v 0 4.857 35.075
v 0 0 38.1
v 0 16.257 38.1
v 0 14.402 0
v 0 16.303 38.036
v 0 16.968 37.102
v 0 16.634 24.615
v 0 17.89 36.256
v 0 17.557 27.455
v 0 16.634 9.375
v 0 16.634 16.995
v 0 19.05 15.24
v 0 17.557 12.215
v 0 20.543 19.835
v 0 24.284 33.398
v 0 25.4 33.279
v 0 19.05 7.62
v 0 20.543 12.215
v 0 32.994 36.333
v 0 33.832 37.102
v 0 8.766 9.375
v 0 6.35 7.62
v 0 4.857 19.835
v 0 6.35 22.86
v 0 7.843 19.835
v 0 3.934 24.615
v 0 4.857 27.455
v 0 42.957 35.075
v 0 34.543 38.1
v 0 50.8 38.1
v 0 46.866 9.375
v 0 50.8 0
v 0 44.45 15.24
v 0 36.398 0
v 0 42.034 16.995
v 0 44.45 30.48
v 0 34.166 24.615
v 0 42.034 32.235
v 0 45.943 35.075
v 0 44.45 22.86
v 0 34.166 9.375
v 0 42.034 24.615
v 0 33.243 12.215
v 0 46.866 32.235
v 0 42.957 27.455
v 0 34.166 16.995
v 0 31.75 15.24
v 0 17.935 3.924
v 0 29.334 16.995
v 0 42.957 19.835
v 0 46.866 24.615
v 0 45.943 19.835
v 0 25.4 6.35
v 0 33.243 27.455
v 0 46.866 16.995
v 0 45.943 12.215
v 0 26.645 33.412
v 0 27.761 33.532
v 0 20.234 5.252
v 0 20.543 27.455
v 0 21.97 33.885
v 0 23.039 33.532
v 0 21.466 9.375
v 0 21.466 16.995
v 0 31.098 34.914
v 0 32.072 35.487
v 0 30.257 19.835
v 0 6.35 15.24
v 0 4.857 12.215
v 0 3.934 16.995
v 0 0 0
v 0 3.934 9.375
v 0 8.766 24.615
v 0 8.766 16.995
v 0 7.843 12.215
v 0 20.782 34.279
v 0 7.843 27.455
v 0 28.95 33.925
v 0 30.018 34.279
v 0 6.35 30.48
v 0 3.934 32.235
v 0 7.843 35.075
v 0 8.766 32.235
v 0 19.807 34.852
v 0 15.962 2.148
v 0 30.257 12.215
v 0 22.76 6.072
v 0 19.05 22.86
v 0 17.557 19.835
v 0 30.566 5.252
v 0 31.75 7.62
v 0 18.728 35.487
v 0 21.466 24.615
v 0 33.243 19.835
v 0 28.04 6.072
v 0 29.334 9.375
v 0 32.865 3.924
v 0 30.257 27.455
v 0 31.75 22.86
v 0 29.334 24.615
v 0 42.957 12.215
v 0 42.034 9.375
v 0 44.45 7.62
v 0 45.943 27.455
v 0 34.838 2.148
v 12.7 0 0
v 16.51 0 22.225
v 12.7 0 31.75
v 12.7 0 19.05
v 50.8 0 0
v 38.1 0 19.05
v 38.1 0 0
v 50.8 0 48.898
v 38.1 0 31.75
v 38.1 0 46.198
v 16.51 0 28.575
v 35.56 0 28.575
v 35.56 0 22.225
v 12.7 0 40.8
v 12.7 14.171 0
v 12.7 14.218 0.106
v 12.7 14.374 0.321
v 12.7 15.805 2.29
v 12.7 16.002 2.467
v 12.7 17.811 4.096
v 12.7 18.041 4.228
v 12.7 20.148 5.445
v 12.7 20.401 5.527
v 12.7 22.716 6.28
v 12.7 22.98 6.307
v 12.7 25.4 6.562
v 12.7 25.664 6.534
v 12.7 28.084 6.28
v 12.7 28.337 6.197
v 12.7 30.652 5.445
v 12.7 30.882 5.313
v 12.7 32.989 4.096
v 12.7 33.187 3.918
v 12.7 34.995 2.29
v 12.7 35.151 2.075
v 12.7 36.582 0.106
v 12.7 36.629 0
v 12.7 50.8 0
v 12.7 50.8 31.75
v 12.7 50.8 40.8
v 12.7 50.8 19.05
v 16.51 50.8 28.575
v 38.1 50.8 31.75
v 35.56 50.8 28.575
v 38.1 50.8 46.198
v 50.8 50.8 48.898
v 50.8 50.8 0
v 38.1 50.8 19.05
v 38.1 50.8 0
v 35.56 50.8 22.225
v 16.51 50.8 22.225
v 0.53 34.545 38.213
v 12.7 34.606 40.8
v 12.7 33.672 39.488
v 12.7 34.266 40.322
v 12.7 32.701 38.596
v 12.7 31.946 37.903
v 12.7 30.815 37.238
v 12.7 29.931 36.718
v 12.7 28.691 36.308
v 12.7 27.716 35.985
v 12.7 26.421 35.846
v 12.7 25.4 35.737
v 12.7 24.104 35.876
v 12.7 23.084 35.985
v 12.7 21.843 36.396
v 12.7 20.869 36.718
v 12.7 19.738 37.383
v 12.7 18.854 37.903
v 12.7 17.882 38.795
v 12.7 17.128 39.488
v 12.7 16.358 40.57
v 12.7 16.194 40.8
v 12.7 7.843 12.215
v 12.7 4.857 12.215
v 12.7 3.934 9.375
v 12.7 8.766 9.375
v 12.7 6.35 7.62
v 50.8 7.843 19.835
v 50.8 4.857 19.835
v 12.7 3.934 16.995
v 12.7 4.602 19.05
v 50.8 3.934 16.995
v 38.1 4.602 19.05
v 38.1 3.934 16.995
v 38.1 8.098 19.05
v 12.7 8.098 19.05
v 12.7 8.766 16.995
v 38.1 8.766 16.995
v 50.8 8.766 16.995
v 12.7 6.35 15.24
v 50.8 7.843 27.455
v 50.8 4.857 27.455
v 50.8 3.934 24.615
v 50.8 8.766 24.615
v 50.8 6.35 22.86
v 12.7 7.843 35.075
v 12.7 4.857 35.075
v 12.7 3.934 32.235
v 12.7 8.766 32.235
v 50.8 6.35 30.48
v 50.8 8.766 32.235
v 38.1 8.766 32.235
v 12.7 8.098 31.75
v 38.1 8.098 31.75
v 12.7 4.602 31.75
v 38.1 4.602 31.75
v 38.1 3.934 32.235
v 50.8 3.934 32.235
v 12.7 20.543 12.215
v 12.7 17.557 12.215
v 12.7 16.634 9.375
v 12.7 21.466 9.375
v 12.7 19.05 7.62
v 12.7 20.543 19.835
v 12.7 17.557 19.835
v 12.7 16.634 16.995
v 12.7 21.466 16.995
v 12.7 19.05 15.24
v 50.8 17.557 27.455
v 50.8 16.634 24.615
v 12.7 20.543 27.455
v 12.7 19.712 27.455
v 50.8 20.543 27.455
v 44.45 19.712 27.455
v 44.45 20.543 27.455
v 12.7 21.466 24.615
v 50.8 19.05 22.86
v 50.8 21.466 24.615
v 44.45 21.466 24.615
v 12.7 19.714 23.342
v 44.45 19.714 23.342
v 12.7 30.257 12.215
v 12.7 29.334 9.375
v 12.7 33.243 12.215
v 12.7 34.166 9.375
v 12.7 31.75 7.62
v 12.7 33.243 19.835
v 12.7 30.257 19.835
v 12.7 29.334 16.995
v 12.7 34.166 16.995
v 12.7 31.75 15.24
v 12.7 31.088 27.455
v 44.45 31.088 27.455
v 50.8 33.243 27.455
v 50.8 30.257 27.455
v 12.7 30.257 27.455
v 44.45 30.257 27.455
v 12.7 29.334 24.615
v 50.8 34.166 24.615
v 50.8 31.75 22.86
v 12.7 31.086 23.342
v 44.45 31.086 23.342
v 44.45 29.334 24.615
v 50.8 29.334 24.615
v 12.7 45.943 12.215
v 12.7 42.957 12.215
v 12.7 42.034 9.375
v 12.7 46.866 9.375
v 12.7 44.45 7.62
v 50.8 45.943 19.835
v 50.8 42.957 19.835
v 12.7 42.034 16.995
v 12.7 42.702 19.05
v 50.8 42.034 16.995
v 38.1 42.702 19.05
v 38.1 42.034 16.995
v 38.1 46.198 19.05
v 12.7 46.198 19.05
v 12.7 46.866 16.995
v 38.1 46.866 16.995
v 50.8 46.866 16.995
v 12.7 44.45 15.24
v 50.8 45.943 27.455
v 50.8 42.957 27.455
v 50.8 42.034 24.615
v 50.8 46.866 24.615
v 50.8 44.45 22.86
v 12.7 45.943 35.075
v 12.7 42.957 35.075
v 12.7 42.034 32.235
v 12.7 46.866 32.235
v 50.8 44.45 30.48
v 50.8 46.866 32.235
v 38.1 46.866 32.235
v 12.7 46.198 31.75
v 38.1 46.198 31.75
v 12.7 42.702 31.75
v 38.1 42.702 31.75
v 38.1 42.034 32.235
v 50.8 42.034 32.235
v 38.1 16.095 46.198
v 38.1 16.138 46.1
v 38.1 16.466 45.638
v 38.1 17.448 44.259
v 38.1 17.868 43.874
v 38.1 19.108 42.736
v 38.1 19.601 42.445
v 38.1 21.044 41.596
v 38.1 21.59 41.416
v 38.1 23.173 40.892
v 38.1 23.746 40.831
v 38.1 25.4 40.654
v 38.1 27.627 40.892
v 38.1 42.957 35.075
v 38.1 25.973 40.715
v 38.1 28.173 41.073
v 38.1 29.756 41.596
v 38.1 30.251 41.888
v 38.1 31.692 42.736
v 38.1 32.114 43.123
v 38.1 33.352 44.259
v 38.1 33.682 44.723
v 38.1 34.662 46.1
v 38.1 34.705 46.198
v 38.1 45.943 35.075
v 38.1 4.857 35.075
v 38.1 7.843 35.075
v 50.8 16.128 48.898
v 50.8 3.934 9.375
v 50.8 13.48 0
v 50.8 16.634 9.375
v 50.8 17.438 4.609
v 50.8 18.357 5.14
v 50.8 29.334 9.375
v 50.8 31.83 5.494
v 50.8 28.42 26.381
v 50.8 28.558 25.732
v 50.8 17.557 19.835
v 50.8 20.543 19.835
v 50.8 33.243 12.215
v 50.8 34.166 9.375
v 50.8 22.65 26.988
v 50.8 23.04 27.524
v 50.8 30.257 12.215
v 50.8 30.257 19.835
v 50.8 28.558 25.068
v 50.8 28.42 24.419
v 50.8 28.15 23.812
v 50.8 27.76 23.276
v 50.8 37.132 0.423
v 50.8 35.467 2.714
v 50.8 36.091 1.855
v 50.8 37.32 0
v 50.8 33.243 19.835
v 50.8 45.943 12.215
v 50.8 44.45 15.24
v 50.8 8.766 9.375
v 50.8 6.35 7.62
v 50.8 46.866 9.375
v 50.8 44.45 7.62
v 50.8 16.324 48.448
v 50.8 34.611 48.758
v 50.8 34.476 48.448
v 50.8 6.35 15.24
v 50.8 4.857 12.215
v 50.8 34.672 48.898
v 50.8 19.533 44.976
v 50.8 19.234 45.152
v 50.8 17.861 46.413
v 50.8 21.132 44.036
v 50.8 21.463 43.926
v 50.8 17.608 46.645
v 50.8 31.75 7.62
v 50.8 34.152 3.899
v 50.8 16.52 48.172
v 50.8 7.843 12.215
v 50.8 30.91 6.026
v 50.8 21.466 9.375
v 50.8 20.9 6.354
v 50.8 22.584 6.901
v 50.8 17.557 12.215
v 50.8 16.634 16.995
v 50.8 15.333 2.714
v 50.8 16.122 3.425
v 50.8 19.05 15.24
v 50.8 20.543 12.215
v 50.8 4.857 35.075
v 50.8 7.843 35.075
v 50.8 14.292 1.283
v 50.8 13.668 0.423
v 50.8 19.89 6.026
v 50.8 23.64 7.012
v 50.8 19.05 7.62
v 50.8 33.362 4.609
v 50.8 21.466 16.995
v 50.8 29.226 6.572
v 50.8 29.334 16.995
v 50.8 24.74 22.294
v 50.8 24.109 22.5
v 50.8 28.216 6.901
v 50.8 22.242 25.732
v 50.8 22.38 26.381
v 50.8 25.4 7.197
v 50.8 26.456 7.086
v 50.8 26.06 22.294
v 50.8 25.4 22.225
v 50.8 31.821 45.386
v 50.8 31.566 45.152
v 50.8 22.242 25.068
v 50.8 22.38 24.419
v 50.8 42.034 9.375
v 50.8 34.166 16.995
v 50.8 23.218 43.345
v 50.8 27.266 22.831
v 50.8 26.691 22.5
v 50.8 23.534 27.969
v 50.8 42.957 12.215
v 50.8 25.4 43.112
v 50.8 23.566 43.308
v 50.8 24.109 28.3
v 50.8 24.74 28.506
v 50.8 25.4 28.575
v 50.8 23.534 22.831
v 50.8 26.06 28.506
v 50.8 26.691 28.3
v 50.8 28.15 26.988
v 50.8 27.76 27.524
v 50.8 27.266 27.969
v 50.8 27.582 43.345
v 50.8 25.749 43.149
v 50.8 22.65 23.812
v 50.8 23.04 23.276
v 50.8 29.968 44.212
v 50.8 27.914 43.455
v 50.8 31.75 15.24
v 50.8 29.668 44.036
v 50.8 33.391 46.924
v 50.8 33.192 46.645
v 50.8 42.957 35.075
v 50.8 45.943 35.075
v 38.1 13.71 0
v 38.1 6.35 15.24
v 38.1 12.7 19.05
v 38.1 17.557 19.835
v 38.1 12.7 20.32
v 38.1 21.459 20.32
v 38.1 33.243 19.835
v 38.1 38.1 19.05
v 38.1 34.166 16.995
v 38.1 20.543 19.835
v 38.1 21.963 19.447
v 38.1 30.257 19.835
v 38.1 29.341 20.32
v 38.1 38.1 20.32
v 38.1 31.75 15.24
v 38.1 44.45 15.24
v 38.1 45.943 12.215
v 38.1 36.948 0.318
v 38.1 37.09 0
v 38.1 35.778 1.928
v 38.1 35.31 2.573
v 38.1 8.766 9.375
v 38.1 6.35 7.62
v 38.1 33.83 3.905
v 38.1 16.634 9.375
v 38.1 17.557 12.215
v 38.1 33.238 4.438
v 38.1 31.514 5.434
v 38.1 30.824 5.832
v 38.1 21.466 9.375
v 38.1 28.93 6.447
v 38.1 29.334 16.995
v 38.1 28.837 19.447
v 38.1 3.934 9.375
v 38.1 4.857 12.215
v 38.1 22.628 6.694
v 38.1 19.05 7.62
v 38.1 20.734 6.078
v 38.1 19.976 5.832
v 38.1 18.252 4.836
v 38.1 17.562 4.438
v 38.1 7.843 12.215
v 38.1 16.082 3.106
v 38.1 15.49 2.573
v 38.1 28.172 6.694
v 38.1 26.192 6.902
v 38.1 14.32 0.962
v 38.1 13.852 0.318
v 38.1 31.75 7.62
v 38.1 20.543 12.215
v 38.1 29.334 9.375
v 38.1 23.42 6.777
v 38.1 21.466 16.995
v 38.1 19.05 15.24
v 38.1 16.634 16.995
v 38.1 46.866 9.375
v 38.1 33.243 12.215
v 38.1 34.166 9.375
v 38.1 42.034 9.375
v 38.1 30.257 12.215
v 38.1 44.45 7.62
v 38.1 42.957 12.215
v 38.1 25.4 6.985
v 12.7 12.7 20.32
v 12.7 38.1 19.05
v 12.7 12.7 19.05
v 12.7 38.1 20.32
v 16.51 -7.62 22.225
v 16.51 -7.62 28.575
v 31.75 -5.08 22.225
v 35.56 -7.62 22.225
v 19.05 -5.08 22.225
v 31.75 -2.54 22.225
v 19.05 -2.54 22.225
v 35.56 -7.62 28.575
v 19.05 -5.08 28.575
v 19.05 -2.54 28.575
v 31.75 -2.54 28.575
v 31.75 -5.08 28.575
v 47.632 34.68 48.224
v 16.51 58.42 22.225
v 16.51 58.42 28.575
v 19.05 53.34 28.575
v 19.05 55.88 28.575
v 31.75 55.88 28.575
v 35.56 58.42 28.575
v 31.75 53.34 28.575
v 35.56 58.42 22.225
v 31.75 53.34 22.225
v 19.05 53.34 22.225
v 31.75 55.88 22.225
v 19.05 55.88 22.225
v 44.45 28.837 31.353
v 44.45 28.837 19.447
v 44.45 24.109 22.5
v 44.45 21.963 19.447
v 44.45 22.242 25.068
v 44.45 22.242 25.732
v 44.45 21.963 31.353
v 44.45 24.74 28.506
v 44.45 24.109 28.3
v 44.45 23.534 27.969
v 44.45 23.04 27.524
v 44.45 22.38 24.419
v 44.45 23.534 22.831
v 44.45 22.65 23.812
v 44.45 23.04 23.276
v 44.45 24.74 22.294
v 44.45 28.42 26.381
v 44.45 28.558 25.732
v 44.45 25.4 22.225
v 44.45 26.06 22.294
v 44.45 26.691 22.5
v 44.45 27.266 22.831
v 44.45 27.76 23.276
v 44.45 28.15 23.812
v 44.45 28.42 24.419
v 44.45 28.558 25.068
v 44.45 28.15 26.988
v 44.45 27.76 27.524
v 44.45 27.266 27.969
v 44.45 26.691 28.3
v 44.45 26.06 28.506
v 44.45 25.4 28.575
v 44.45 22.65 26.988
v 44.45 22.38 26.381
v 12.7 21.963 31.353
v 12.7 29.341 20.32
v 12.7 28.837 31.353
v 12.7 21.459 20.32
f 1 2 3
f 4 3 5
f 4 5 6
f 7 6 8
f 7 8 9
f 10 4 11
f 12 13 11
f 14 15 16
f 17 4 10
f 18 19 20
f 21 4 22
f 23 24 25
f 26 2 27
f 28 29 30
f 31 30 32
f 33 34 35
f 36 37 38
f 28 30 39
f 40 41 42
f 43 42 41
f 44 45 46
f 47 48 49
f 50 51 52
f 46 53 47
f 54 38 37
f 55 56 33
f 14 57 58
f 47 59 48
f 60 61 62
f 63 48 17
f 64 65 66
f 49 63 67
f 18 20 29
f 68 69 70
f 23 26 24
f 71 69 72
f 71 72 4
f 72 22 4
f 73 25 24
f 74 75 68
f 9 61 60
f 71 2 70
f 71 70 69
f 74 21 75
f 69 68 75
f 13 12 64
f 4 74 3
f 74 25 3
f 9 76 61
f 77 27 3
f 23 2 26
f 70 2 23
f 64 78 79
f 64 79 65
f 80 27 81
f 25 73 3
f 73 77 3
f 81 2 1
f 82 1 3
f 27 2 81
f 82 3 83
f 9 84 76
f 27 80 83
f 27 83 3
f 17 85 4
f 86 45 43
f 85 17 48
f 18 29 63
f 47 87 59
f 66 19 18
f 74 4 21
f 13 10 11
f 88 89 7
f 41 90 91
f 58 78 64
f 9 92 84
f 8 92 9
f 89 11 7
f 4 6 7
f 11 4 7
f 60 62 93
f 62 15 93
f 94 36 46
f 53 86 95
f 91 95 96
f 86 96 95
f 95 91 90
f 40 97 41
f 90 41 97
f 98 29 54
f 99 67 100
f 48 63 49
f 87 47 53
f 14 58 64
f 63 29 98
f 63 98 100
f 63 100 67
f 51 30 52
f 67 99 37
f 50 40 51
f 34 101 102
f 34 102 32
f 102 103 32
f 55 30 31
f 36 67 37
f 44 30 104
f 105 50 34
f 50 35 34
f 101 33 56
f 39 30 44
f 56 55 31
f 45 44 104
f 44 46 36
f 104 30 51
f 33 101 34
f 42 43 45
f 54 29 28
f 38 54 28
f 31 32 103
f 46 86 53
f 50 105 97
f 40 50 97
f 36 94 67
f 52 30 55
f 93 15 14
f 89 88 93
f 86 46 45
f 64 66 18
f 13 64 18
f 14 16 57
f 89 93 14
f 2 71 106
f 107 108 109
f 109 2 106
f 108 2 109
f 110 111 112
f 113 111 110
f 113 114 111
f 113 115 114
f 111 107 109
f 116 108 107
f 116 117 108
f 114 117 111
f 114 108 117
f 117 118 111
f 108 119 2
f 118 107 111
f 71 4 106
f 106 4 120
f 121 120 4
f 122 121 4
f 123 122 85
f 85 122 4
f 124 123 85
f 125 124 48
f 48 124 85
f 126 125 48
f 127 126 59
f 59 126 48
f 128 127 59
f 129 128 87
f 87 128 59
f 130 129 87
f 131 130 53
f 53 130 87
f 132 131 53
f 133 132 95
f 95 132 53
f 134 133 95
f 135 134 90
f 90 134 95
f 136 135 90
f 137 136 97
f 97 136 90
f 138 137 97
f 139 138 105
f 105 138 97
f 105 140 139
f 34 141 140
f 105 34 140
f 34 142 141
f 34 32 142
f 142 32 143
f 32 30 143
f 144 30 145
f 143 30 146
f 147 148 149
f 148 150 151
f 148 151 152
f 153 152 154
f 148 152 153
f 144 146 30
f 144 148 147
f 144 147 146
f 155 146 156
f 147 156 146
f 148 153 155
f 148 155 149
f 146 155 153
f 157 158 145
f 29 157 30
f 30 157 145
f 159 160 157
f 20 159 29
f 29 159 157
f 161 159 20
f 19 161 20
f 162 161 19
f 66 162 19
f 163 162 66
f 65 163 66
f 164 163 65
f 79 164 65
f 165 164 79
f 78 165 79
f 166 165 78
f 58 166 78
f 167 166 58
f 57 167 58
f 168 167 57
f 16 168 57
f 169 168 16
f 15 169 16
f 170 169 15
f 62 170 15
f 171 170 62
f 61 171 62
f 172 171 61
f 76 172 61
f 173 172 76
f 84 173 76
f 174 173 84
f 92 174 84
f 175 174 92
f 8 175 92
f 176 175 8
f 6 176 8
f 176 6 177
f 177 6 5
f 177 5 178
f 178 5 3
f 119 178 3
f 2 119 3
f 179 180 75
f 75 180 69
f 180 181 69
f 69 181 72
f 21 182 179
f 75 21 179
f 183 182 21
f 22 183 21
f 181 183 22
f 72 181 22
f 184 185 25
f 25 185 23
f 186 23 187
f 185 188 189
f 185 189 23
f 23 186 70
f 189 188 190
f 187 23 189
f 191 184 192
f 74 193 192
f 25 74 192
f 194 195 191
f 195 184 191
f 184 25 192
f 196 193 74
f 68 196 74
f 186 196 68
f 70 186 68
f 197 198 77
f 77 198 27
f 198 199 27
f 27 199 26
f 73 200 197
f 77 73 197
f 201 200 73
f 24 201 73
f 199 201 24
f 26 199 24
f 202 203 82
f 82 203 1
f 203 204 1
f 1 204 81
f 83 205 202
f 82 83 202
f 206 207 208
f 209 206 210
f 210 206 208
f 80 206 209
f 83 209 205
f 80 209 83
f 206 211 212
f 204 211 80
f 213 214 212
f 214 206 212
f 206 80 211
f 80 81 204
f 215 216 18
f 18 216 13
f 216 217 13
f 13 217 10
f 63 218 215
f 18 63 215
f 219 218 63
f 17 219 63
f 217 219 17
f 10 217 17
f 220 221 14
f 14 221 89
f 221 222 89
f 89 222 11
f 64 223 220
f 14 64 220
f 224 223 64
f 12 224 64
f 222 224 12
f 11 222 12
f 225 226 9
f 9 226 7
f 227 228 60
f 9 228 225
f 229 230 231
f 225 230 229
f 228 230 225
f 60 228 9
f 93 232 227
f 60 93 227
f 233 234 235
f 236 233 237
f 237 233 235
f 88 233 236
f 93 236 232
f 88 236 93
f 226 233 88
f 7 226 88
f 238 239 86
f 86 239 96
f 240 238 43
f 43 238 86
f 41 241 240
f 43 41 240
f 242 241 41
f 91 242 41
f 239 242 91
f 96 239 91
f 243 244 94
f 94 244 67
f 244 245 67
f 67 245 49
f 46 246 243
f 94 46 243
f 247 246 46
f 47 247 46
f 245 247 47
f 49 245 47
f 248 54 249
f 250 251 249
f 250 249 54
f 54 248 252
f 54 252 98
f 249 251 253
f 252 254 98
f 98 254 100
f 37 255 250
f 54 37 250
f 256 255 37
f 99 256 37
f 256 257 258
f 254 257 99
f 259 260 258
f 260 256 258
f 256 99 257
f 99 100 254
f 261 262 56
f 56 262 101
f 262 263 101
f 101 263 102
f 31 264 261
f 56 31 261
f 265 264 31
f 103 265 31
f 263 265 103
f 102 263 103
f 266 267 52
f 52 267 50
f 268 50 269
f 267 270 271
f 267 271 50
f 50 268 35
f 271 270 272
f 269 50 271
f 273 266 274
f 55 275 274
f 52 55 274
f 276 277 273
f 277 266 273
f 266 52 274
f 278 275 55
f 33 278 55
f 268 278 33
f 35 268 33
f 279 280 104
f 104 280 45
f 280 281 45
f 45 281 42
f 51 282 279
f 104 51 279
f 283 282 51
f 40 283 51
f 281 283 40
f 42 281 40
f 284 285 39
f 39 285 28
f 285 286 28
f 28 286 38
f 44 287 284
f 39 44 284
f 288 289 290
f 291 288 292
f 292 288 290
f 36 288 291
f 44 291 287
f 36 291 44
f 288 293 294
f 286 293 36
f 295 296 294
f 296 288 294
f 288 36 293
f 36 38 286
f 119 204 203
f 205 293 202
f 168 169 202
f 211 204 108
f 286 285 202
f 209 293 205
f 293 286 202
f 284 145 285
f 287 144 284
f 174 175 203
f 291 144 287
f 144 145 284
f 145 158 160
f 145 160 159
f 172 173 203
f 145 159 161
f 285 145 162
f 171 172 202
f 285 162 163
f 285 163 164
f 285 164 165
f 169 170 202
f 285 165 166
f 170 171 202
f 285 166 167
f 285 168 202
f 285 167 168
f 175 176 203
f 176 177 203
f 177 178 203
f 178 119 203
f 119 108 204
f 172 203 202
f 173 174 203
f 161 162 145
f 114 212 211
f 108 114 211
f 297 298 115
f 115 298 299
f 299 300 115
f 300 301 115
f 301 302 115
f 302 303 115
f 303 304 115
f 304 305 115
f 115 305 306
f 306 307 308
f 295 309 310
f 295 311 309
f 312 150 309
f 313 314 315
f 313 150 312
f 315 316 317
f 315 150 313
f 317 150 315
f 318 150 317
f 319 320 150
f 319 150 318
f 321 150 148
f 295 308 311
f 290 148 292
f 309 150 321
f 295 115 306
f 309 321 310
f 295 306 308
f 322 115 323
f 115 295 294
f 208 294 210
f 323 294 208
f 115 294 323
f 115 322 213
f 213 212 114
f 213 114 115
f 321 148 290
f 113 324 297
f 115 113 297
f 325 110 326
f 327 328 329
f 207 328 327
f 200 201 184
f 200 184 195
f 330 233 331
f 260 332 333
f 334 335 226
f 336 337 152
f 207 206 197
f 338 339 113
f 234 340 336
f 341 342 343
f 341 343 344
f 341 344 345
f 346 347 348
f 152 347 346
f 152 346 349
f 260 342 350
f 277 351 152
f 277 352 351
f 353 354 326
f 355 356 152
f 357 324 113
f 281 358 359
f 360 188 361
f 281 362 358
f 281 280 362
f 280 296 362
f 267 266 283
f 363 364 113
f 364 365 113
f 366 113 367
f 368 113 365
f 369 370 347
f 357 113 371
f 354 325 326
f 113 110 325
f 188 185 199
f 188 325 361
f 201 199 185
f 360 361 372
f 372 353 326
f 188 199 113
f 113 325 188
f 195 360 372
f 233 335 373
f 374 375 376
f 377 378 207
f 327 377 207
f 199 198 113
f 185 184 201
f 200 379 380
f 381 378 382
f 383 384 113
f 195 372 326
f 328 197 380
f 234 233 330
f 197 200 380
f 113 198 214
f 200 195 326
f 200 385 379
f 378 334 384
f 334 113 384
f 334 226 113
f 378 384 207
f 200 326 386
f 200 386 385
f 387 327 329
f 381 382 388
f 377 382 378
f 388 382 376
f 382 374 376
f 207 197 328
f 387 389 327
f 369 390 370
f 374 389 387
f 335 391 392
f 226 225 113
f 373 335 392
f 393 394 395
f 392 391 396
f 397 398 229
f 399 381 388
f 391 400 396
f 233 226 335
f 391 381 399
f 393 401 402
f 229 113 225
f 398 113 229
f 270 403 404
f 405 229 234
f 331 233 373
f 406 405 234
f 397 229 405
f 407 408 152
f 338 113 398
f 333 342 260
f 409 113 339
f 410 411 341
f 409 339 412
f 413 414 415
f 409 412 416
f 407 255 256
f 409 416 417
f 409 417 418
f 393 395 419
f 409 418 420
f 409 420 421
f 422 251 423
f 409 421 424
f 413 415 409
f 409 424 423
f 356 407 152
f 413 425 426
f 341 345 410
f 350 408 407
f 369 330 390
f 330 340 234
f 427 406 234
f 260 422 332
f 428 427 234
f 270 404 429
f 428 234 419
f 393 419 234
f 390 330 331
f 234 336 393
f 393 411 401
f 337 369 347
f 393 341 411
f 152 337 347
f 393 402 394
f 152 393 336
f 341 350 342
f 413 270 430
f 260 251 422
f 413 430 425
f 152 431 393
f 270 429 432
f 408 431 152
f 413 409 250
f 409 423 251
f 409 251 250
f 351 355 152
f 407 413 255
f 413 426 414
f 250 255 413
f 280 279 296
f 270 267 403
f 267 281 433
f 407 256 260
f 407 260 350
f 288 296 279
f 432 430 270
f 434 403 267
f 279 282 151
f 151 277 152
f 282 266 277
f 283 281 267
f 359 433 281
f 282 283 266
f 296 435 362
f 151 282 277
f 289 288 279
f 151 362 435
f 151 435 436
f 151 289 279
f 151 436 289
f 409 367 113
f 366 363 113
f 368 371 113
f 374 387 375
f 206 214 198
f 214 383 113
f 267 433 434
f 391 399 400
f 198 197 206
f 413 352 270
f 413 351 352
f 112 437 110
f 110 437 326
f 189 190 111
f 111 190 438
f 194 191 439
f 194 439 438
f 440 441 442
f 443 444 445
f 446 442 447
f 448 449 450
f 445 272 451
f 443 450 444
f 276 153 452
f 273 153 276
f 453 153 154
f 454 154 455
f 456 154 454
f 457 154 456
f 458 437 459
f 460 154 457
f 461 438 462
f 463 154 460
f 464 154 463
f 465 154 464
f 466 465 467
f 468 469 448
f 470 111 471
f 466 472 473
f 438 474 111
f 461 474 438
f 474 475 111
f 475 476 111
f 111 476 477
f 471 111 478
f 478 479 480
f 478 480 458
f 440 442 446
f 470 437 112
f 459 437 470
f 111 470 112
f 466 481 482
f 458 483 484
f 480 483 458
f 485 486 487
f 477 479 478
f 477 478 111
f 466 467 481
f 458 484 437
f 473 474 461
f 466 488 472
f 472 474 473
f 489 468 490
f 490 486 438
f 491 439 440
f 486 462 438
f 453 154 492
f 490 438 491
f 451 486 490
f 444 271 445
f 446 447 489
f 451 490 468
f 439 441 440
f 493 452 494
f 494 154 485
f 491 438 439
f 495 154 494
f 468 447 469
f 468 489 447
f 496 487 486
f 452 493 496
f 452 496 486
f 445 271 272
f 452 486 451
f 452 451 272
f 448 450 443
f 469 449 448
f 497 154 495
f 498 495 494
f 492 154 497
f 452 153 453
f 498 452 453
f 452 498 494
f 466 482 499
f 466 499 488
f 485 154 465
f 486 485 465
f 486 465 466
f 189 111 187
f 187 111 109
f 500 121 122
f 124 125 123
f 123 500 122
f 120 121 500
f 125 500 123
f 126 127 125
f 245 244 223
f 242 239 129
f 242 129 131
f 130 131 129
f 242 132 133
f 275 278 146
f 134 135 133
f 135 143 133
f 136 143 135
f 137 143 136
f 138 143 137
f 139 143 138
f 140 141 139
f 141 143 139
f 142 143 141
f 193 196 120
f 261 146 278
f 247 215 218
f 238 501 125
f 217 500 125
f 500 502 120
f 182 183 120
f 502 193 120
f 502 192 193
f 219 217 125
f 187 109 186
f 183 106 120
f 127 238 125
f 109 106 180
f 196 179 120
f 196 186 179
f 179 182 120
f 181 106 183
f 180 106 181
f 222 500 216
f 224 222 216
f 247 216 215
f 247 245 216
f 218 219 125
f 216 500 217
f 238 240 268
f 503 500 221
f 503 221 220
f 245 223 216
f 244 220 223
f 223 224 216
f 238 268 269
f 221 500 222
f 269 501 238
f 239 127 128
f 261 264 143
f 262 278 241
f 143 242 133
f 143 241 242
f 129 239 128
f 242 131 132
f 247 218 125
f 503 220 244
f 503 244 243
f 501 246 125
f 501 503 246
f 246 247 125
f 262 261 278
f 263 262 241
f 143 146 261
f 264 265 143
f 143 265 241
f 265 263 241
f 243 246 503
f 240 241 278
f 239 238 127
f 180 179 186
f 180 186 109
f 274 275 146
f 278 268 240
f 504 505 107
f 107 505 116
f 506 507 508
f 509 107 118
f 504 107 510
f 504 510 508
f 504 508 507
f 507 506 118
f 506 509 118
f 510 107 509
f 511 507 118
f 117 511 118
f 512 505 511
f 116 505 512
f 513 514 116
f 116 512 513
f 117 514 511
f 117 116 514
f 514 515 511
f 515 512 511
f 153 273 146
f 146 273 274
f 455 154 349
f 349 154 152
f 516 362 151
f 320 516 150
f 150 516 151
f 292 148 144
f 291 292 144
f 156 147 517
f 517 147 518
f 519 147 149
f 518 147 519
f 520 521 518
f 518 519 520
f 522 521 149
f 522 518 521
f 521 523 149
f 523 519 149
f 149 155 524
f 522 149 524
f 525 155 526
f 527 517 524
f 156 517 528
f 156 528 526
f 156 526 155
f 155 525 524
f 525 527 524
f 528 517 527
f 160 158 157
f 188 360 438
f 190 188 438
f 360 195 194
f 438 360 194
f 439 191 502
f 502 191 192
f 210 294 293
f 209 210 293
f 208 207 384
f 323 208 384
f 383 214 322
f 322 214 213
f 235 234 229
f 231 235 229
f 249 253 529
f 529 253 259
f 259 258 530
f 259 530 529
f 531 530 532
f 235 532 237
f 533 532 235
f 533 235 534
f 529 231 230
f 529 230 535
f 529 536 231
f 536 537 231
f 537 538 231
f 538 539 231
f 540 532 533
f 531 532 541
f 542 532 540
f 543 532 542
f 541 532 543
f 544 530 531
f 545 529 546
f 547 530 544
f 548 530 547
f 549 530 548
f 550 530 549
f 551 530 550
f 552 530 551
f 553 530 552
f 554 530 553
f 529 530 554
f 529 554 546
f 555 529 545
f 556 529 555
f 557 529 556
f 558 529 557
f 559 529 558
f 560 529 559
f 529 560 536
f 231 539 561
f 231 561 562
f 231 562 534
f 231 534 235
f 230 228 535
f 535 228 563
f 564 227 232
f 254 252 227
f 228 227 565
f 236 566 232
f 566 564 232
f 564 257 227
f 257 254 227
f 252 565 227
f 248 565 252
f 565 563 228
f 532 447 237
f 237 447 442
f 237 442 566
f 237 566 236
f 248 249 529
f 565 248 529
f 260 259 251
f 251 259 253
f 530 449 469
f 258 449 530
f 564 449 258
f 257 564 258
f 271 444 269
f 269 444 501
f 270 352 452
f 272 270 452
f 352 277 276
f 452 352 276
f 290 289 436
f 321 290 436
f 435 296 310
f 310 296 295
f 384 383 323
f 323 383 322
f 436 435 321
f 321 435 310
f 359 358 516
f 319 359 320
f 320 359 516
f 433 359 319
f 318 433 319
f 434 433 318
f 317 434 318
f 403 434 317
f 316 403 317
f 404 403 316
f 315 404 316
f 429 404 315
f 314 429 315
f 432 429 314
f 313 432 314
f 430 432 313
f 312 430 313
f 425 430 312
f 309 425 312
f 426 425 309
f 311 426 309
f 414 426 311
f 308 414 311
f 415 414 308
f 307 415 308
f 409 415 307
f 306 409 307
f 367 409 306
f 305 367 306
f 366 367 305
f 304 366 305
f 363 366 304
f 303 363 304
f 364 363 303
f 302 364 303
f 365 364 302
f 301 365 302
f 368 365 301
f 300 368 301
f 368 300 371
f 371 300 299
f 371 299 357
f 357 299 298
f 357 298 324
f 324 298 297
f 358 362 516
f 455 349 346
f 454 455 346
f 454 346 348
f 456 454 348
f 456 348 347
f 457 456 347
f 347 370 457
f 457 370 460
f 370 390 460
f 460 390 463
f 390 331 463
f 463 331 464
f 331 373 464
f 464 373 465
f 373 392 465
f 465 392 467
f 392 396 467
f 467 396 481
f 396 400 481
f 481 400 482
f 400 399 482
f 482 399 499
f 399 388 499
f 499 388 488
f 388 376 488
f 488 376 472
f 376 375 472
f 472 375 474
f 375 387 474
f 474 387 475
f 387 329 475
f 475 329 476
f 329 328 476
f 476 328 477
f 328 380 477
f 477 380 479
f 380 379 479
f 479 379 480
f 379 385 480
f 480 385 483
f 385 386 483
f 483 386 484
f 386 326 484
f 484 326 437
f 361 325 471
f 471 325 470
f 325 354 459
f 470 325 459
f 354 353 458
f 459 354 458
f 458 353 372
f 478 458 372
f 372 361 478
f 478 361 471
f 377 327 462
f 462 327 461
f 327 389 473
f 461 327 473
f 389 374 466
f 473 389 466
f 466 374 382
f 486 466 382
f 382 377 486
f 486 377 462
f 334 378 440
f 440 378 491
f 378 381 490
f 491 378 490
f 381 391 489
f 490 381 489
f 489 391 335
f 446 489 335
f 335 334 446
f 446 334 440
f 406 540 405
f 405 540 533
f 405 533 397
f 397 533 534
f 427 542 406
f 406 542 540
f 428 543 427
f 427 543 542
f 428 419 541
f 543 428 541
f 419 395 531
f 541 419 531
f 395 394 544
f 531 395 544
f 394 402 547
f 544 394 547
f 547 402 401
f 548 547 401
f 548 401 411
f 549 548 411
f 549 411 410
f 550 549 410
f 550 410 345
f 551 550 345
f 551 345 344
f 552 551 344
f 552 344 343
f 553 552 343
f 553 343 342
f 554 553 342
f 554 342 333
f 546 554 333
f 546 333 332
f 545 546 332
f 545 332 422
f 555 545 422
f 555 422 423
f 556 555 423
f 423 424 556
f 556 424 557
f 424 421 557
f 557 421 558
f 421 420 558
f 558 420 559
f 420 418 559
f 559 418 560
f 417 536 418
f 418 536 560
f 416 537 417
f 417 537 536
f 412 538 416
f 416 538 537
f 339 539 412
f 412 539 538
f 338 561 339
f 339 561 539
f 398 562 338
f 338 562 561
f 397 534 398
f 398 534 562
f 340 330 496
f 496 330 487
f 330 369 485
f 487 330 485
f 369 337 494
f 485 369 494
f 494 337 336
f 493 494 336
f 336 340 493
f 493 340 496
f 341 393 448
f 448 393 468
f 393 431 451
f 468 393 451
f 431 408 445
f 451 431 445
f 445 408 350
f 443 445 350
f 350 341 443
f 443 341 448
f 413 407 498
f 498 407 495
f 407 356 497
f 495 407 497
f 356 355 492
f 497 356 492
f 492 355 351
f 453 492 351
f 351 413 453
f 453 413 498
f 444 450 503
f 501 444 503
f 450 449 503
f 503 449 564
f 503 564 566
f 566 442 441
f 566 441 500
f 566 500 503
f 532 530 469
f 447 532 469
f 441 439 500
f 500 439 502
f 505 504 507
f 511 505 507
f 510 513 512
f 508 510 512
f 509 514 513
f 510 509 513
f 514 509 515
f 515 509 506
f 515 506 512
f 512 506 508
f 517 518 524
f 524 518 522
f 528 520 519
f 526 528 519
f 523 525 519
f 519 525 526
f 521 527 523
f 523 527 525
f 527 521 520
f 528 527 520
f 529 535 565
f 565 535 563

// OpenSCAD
// Trying to be a trekking pole camera mount
// jellsworth Dec 2014
//

use <Libs.scad>;

// units = inches
// scale to mm for printing
scale([25.4, 25.4, 25.4]) {

difference() {
	union(){
		// base block
		translate([0, 0, 0]) {
			cube([ 2, 2, 2 ], false);
		}

		// add strap supports
		difference() {
			// add strap base
			translate( [0.65, -0.3, 0.75 + 1/8]) {
				cube([ 0.75, 2.6, 0.25]);
			}
			
			// cut strap holes
			translate([0.75, -0.2, 0]){
				cube([0.5, 0.1, 2], false);
			}
			translate([0.75, 2.1, 0]){
				cube([0.5, 0.1, 2], false);
			}
		}
	}



	// remove wedge
	translate([ 0, 0, 1.5]) {
		rotate([ 0, -12, 0]) {
			cube([ 3, 2, 1 ], false);
		}
	}

	// remove cross-cuts
	translate([ 0.5, -0.5, 0]) {
		cube([ 1, 3, 0.75 ], false);
	}
	translate([ 0.5, -0.5, 1.25]) {
		cube([ 1, 3, 0.75 ], false);
	}



	// remove pole channel 1
	translate([ 0, 1, -0.25]) {
		rotate([ 0, 90, 0]) {
			cylinder(h = 6, r1 = 0.5, r2 = 0.6, center = false, $fn=30);
		}
	}

	// remove pole channel 2
	translate([ -3.2, 1, 1.2]) {
		rotate([ 0, 80, 0]) {
			cylinder(h = 6, r1 = 0.5, r2 = 0.4, center = false, $fn=30);
		}
	}


	//cut hole for bolt
	//1/4" - 20 x 3/4" (w/ 7/16" head)
	translate([0.5 + 1.25/2, 1, 1]){
		rotate([0, 90, 0]){
			rotate(30, 0, 0){
				// small extra space for 7/16 hex head bolt
				hex(7/16 + 1/32, 1.25, true, true );
			}
			cylinder(h = 2, d=1/4, $fn=30);
		}
	}

	//cut bolt access
	translate([0.5, 0.5, 0]){
		cube([ 1, 1, 0.8]);
	}
	
/*
	//reduce volume
	// bottom row
	vhole(1.75, 0.4);
	vhole(1.25, 0.4);
	vhole(0.75, 0.4);
	vhole(0.25, 0.4);

	//  middle row
	vhole(1.75, 0.7);
	vhole(1.25, 0.7);
	vhole(0.75, 0.7);
	vhole(0.25, 0.7);

	//  top row
	vhole(1.75, 1);
	vhole(0.25, 1);
	vhole(1.75, 1.3);

*/
	//endwise holes
	//bottom
	vhole2(0.25, 0.4);
	vhole2(0.75, 0.4);
	vhole2(1.25, 0.4);
	vhole2(1.75, 0.4);

	//middle
	vhole2(0.25, 0.7);
	vhole2(0.75, 0.7);
	vhole2(1.25, 0.7);
	vhole2(1.75, 0.7);

	//top
	vhole2(0.25, 1);
	vhole2(0.75, 1);
	vhole2(1.25, 1);
	vhole2(1.75, 1);
	vhole2(0.25, 1.3);
	vhole2(1.75, 1.3);



} // end difference block
} // end scale block

// create cross-holes to reduce volume
module vhole(hx,hz,diam=0.2) {
	translate([hx, -0.5, hz]){
		rotate([-90, 0, 0]){
			cylinder(h = 3, d=diam, $fn=5);
		}
	}
}

// create lengthwise holes to reduce volume
module vhole2(hy,hz,diam=0.2) {
	translate([-0.5, hy, hz]){
		rotate([0, 90, 0]){
			cylinder(h = 3, d=diam, $fn=5);
		}
	}
}
